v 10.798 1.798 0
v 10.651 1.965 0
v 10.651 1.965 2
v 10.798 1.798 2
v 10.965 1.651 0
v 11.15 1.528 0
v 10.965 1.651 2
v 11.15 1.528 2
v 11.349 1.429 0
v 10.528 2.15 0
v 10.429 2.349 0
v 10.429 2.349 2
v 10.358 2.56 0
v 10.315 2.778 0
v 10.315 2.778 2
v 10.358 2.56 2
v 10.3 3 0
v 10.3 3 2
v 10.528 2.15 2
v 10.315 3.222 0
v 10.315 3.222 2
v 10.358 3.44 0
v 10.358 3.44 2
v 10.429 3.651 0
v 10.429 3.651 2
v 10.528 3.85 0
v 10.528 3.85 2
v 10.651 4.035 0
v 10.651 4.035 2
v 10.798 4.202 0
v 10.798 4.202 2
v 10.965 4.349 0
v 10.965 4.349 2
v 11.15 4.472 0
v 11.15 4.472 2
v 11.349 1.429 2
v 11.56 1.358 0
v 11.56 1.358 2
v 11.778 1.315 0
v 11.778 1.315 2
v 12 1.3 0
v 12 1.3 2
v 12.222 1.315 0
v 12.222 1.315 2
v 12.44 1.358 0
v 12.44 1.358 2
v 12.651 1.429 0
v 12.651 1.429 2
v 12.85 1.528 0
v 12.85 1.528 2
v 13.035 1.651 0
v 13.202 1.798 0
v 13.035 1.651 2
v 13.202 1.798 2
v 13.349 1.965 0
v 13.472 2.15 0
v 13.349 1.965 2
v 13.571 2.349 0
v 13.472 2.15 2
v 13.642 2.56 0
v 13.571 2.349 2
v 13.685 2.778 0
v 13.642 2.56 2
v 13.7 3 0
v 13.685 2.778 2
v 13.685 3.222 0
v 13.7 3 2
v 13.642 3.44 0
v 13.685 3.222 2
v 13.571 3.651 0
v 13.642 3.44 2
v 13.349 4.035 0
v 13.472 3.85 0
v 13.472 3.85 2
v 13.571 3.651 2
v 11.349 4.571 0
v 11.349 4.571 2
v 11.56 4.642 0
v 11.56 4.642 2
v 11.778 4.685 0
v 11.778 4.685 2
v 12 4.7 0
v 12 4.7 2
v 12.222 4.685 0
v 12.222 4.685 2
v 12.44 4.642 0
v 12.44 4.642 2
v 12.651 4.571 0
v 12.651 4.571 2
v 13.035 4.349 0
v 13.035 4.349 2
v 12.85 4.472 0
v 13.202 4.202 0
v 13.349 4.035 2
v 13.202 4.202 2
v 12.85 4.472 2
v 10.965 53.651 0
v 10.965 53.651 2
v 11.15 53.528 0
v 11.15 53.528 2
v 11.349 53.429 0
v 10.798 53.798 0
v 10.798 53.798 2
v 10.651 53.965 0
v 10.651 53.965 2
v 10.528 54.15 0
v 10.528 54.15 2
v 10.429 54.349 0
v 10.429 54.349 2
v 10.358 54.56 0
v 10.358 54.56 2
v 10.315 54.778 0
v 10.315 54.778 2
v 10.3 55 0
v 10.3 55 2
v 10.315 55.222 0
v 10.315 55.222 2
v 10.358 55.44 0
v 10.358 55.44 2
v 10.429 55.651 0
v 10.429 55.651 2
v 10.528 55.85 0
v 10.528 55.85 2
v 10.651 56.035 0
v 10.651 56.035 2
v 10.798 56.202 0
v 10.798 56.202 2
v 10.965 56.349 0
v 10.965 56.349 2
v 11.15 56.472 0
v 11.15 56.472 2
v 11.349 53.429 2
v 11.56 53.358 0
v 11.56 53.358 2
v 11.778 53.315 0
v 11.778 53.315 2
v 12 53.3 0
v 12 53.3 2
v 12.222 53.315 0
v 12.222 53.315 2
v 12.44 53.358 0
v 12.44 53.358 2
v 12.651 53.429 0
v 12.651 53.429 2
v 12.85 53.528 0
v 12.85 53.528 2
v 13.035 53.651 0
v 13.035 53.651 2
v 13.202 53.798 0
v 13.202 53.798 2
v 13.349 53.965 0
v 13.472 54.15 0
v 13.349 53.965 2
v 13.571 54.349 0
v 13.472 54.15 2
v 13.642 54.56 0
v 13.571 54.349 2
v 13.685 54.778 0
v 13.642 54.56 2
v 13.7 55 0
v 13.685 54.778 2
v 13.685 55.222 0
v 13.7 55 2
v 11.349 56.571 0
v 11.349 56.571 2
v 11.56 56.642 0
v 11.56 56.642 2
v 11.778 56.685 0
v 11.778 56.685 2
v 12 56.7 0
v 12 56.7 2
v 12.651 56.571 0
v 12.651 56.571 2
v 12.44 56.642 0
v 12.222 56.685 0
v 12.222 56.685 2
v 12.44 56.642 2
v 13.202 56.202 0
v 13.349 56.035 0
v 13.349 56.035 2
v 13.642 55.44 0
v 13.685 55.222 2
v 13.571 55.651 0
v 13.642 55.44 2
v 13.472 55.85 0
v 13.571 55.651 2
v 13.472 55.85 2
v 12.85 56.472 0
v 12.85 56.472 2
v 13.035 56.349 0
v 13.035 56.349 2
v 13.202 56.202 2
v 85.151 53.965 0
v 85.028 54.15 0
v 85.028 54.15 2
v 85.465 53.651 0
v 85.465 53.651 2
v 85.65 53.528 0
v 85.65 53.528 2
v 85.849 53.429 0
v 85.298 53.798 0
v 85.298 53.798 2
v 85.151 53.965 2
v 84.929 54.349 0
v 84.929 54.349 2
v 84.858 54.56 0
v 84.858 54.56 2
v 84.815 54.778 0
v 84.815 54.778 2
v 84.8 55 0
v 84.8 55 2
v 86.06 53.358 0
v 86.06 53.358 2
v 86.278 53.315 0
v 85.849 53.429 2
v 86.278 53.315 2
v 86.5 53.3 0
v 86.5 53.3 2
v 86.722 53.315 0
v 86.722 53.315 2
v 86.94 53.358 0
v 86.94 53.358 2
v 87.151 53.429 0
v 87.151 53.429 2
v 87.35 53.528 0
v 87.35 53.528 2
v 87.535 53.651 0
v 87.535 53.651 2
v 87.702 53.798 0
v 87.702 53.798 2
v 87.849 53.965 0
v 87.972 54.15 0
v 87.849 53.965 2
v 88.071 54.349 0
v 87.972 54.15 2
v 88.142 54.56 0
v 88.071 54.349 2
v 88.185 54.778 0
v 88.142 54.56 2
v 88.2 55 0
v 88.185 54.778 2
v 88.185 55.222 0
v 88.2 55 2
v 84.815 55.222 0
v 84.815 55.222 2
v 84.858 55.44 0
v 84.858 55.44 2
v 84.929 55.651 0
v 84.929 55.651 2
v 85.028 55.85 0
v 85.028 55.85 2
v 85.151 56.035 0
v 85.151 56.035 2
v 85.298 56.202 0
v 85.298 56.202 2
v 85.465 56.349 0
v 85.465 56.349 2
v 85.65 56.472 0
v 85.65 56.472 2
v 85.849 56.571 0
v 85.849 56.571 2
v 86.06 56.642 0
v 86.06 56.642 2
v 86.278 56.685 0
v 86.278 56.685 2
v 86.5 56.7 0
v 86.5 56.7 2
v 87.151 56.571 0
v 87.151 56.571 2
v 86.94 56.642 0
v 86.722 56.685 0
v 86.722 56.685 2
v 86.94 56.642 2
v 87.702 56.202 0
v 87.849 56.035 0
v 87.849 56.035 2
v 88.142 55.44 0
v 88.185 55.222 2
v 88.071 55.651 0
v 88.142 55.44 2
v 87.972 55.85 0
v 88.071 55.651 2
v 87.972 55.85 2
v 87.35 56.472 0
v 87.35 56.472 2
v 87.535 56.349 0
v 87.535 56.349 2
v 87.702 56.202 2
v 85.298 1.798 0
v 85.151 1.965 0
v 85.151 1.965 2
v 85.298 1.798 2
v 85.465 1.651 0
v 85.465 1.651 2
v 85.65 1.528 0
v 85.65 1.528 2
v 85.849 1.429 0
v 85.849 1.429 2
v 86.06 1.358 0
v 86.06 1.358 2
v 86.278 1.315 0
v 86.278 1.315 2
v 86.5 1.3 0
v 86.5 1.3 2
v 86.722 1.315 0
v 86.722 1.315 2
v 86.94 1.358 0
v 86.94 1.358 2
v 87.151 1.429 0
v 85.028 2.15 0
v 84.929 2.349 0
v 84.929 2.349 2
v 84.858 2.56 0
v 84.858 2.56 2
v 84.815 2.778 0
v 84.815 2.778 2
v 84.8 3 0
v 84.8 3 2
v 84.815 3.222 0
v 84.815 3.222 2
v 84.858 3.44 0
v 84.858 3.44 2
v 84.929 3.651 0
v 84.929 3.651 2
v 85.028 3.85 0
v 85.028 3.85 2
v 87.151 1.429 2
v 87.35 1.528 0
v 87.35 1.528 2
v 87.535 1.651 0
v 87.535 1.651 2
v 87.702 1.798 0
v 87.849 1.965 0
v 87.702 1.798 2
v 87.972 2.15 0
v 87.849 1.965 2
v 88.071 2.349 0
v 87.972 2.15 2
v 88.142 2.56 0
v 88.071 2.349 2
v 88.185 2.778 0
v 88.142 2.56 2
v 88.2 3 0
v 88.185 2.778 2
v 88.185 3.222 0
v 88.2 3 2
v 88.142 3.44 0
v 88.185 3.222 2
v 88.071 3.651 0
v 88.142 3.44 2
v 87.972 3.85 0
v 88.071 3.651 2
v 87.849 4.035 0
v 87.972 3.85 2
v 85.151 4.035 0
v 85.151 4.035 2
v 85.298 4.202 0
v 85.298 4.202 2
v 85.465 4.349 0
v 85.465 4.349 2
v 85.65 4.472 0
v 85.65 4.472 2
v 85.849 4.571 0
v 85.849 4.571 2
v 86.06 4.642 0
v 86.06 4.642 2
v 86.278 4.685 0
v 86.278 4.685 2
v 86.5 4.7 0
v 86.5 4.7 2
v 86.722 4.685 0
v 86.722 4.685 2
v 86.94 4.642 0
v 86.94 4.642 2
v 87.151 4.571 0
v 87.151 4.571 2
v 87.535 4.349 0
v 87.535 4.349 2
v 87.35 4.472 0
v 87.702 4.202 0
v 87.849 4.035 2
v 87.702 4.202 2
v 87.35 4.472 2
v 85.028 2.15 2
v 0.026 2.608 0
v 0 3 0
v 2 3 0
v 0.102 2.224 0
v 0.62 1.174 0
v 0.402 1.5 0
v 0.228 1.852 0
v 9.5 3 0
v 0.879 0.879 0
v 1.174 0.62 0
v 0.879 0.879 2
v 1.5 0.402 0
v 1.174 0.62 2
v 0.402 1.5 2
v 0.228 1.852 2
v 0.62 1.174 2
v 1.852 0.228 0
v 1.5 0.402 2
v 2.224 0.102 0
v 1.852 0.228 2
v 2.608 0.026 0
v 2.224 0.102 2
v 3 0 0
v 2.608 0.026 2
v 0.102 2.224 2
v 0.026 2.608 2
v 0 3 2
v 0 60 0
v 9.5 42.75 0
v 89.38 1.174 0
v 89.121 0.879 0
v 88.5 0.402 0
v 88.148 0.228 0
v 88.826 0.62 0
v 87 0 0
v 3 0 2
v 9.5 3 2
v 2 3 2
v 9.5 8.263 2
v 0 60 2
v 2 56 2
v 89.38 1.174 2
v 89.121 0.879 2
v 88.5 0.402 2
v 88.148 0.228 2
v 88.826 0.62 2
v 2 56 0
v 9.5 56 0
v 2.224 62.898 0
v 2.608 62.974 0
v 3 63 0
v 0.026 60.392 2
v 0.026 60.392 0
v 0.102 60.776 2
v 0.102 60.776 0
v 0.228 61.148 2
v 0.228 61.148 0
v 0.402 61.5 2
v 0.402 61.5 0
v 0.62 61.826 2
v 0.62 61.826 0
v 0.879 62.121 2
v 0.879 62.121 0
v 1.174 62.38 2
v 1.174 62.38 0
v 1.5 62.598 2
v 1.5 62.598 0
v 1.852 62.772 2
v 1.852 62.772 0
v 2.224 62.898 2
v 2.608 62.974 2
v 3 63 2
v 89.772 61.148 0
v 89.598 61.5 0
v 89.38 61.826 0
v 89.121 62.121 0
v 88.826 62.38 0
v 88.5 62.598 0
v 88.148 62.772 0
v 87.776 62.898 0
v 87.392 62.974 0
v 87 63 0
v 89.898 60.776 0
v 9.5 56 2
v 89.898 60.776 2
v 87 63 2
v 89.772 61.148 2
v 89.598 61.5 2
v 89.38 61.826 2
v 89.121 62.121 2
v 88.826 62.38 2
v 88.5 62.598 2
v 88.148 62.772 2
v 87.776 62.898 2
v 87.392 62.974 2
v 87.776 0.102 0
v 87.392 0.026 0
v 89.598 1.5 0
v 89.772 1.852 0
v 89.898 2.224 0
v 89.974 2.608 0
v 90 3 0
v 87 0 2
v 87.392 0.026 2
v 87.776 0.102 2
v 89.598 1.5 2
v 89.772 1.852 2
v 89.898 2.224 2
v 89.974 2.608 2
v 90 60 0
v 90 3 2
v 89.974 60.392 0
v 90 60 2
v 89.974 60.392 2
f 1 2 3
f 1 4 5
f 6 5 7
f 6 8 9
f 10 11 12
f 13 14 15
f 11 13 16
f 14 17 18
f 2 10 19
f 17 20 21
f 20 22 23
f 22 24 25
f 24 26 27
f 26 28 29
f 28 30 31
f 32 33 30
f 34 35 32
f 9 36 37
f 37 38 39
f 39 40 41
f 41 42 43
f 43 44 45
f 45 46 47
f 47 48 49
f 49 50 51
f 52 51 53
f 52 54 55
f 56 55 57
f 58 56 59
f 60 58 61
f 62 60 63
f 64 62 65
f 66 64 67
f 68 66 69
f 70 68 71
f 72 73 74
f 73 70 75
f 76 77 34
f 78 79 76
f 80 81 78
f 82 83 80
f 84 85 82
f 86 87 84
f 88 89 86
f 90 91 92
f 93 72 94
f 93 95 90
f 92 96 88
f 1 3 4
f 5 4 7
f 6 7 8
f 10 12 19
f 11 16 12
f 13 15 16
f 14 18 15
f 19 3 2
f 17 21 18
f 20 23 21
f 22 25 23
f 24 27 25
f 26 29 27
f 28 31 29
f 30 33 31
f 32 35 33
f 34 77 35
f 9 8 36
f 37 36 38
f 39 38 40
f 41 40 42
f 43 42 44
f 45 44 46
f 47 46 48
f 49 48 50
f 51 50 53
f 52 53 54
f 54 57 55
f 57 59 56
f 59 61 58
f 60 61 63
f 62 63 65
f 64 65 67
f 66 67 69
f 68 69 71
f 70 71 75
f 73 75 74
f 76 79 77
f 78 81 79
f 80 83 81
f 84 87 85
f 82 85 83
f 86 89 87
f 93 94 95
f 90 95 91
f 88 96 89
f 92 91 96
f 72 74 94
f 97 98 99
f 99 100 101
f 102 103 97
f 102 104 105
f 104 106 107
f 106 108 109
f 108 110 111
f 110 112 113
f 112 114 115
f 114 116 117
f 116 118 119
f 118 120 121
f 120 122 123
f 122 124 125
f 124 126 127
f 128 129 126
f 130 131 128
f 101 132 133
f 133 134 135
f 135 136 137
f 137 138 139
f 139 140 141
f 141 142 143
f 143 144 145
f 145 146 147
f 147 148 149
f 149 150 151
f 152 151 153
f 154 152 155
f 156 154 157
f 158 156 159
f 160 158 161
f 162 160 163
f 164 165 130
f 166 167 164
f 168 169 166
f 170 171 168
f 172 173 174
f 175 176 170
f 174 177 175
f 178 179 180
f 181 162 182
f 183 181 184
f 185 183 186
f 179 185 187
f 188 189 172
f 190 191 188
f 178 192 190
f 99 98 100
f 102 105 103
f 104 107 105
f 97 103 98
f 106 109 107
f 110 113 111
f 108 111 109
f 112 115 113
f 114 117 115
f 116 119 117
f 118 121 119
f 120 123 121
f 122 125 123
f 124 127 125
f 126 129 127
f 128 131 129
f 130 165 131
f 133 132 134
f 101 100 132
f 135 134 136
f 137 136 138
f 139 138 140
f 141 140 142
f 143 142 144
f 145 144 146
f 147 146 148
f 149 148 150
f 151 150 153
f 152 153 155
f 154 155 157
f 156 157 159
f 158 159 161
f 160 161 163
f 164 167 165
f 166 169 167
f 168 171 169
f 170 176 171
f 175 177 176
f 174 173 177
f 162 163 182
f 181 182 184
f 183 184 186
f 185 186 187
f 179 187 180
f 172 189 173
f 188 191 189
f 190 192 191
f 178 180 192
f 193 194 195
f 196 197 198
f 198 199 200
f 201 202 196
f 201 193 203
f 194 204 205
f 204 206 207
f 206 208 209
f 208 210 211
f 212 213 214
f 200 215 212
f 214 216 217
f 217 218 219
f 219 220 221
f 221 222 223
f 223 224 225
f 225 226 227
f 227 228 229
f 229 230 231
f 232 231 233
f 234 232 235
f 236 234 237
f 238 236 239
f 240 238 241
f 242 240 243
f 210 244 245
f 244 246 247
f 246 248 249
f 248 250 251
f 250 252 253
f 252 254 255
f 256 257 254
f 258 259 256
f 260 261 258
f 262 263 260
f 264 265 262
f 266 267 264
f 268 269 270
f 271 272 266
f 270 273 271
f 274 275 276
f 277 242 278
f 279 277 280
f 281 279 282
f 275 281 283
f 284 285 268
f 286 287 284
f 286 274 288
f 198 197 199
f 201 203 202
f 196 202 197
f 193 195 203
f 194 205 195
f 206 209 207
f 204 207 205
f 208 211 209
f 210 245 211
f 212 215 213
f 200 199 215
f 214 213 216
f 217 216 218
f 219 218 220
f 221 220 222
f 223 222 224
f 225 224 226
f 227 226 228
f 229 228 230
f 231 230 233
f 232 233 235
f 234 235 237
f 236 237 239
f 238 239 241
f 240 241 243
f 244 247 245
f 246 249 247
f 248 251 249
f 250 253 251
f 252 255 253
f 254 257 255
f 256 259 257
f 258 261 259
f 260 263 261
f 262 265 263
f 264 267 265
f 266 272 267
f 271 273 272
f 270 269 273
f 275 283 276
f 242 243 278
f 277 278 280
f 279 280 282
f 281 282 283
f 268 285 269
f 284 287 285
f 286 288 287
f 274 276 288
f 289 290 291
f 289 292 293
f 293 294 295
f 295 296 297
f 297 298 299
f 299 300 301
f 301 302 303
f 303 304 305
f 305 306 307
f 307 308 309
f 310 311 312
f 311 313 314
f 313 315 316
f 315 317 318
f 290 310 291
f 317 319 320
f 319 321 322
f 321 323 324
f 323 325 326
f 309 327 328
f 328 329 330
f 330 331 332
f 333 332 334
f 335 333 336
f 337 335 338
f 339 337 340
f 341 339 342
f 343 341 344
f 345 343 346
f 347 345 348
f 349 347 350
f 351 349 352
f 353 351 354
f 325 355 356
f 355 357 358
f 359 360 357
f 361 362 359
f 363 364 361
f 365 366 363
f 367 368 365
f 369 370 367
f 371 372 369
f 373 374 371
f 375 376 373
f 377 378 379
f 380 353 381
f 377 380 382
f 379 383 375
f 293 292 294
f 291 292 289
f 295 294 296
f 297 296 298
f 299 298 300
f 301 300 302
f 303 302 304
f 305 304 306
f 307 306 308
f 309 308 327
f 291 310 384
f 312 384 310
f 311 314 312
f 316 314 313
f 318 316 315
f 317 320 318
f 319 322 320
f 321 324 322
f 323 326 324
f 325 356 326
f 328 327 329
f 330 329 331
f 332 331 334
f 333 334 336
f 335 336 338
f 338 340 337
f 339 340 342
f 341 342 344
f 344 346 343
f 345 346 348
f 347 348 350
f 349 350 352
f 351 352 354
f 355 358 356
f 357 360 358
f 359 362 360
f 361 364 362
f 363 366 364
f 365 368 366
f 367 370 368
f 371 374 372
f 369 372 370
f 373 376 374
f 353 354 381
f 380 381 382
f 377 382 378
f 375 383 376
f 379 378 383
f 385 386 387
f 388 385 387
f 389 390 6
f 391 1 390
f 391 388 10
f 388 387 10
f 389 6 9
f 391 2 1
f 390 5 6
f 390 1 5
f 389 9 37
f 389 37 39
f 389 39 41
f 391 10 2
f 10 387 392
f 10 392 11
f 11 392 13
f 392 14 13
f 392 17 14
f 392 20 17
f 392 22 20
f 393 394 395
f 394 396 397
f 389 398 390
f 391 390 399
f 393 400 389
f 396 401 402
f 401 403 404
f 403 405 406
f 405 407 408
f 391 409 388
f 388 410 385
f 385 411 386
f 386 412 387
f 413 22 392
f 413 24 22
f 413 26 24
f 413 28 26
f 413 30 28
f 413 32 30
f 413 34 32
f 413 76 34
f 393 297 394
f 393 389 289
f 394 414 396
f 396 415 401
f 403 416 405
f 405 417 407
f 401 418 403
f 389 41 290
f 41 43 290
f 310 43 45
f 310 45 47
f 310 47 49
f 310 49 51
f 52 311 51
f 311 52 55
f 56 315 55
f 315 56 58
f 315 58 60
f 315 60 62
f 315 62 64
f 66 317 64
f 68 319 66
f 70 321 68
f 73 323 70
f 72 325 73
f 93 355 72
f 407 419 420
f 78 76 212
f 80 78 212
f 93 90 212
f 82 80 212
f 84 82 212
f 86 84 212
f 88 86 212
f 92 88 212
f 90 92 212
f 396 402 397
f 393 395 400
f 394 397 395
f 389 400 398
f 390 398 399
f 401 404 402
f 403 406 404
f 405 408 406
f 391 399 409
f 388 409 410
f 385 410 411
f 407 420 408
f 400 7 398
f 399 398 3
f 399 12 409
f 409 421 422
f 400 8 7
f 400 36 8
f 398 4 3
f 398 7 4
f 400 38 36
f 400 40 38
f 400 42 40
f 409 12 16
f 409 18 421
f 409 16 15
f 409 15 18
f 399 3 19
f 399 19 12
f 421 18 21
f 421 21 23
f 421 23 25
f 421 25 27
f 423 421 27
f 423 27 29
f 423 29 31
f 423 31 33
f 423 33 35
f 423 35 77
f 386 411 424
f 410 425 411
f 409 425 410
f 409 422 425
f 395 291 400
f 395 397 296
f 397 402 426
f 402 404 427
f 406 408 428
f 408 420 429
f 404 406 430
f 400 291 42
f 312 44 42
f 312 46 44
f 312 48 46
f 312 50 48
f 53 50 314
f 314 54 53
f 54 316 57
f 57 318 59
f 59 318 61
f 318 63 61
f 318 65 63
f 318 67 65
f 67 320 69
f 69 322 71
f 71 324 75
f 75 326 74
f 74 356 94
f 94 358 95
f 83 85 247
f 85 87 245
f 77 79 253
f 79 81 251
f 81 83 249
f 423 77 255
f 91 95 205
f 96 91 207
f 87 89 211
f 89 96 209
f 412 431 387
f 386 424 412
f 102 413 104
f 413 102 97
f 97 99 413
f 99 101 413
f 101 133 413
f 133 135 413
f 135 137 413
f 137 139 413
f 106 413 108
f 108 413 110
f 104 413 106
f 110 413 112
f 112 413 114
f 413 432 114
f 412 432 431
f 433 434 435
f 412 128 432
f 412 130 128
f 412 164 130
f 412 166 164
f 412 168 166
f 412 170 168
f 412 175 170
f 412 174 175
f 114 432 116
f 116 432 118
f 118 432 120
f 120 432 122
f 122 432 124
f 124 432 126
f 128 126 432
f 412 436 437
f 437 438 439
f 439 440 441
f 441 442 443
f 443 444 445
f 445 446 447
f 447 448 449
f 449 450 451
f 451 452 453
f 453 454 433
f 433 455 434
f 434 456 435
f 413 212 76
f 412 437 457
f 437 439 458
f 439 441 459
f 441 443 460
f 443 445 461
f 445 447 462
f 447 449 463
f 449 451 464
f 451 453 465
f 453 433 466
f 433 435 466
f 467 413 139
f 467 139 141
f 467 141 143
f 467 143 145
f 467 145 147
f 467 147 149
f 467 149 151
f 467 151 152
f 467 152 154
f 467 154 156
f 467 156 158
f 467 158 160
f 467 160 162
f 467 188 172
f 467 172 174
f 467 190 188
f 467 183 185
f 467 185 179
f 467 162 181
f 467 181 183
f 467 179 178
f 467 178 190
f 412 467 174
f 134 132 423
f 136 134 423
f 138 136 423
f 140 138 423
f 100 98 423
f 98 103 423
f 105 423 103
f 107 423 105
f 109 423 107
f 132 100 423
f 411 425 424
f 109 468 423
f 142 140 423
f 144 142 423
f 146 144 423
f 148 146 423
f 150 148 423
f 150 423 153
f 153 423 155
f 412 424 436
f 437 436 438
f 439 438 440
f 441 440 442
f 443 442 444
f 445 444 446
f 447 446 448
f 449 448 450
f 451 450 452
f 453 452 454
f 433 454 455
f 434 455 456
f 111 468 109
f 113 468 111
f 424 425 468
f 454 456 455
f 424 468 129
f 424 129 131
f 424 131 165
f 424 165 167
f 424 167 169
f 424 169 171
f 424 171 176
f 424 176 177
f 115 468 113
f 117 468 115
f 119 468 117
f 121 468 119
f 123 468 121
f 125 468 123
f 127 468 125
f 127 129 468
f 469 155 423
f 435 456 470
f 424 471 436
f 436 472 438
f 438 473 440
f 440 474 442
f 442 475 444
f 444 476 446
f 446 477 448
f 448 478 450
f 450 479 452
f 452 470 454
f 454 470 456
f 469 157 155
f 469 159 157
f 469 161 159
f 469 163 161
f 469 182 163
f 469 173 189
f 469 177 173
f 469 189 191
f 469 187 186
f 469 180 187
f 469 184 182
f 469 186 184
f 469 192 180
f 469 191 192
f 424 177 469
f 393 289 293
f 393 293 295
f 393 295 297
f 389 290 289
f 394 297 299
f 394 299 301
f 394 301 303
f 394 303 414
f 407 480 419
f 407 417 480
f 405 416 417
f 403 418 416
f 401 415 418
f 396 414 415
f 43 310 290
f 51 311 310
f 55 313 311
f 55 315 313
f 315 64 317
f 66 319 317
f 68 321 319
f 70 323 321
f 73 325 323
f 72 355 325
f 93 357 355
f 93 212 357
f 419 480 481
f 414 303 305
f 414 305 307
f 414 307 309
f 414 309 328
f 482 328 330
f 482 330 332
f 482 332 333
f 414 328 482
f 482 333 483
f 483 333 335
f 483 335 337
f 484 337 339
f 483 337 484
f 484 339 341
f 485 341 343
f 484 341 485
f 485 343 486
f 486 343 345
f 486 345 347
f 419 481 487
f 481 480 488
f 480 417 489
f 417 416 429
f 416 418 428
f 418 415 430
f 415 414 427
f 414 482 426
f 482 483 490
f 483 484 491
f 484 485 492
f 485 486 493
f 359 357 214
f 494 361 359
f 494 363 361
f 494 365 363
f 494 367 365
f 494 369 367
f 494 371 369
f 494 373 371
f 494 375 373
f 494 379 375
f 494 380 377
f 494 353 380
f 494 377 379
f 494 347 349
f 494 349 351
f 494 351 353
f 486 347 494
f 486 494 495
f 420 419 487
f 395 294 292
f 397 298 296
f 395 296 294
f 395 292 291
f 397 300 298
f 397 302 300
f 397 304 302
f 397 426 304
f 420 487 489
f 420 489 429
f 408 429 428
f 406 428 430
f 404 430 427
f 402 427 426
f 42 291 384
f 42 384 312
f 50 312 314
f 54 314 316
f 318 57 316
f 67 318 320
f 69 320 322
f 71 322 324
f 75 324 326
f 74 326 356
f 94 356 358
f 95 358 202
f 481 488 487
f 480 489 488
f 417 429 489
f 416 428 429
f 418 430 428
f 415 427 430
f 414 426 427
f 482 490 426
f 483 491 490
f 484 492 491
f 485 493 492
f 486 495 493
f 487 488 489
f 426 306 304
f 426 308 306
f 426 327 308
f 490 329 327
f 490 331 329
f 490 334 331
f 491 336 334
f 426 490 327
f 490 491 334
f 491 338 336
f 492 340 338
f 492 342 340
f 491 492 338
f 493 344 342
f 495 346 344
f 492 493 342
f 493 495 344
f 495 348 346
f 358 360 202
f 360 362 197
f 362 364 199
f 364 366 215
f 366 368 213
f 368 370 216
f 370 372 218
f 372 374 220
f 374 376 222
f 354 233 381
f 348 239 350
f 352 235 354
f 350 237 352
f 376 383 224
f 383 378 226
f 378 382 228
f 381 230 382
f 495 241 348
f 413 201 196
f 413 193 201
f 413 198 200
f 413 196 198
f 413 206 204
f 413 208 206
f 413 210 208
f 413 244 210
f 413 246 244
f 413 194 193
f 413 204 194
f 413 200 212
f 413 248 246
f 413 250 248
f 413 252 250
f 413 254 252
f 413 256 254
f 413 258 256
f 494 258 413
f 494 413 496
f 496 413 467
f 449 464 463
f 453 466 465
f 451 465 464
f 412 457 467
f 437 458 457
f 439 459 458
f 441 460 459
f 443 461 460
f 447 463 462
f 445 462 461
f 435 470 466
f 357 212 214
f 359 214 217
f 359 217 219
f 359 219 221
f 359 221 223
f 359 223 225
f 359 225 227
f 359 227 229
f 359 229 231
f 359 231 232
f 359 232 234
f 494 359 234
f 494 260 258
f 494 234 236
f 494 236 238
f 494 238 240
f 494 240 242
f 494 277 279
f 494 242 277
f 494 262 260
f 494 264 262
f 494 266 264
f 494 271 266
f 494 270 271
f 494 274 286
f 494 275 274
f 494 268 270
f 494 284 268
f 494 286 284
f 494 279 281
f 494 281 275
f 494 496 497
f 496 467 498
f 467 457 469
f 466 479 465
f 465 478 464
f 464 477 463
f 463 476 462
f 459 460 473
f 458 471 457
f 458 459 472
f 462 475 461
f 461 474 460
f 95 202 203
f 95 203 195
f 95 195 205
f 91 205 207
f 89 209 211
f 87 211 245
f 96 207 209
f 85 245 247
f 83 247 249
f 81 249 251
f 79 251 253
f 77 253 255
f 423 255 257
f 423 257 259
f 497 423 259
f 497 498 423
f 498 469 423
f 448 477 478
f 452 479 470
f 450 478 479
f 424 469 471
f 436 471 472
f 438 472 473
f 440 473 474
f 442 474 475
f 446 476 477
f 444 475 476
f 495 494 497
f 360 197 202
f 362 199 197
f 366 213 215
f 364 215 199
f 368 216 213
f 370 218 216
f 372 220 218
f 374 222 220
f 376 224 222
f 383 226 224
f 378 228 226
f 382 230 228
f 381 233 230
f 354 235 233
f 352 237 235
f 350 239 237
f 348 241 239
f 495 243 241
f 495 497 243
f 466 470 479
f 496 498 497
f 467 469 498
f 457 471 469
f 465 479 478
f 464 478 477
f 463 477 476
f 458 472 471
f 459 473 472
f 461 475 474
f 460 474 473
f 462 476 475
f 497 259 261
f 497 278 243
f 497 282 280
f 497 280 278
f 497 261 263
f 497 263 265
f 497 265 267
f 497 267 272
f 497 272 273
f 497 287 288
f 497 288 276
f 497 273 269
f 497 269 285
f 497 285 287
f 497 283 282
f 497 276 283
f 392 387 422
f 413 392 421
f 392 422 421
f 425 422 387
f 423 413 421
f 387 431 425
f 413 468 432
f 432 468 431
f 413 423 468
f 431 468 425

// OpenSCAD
// Raspberry Pi 5 Home Assistant panel: small back plate
//
// Flat plate with four M3 corner holes and a port opening on the left.
// Print flat on the bed, no supports needed.
//
// The middle M3 mounting pair (45 mm apart) moved to the main back cover.

/* [Plate] */
plate_w  = 90;    // width
plate_h  = 63;    // height
plate_t  = 2;     // thickness
corner_r = 3;     // corner radius

/* [M3 holes] */
hole_d = 3.4;     // M3 clearance hole
// Each [from left edge, from bottom edge] to the hole center
holes = [
    [12, 3],                          // bottom left
    [12, plate_h - 8],                // top left: 12 from left, 8 from top
    [plate_w - 3.5, plate_h - 8],     // top right: 3.5 from right, 8 from top
    [plate_w - 3.5, 3],               // bottom right: 3.5 from right, 3 from bottom
];

/* [Port cutouts] */
// Rectangular openings, each [left x, bottom y, right x, top y] from the
// plate's bottom-left corner.
cutouts = [
    [2, 3, 9.5, plate_h - 7],         // output port: 2-9.5 from left, 3 from bottom to 7 from top
];

$fn = 48;

module rounded_rect(w, h, r) {
    translate([r, r]) offset(r) square([w - 2 * r, h - 2 * r]);
}

module back_plate() {
    difference() {
        linear_extrude(plate_t) rounded_rect(plate_w, plate_h, corner_r);
        for (p = holes)
            translate([p[0], p[1], -1])
                cylinder(d = hole_d, h = plate_t + 2);
        for (c = cutouts)
            translate([c[0], c[1], -1])
                cube([c[2] - c[0], c[3] - c[1], plate_t + 2]);
    }
}

back_plate();

echo(str("Plate: ", plate_w, " x ", plate_h, " x ", plate_t, " mm"));
